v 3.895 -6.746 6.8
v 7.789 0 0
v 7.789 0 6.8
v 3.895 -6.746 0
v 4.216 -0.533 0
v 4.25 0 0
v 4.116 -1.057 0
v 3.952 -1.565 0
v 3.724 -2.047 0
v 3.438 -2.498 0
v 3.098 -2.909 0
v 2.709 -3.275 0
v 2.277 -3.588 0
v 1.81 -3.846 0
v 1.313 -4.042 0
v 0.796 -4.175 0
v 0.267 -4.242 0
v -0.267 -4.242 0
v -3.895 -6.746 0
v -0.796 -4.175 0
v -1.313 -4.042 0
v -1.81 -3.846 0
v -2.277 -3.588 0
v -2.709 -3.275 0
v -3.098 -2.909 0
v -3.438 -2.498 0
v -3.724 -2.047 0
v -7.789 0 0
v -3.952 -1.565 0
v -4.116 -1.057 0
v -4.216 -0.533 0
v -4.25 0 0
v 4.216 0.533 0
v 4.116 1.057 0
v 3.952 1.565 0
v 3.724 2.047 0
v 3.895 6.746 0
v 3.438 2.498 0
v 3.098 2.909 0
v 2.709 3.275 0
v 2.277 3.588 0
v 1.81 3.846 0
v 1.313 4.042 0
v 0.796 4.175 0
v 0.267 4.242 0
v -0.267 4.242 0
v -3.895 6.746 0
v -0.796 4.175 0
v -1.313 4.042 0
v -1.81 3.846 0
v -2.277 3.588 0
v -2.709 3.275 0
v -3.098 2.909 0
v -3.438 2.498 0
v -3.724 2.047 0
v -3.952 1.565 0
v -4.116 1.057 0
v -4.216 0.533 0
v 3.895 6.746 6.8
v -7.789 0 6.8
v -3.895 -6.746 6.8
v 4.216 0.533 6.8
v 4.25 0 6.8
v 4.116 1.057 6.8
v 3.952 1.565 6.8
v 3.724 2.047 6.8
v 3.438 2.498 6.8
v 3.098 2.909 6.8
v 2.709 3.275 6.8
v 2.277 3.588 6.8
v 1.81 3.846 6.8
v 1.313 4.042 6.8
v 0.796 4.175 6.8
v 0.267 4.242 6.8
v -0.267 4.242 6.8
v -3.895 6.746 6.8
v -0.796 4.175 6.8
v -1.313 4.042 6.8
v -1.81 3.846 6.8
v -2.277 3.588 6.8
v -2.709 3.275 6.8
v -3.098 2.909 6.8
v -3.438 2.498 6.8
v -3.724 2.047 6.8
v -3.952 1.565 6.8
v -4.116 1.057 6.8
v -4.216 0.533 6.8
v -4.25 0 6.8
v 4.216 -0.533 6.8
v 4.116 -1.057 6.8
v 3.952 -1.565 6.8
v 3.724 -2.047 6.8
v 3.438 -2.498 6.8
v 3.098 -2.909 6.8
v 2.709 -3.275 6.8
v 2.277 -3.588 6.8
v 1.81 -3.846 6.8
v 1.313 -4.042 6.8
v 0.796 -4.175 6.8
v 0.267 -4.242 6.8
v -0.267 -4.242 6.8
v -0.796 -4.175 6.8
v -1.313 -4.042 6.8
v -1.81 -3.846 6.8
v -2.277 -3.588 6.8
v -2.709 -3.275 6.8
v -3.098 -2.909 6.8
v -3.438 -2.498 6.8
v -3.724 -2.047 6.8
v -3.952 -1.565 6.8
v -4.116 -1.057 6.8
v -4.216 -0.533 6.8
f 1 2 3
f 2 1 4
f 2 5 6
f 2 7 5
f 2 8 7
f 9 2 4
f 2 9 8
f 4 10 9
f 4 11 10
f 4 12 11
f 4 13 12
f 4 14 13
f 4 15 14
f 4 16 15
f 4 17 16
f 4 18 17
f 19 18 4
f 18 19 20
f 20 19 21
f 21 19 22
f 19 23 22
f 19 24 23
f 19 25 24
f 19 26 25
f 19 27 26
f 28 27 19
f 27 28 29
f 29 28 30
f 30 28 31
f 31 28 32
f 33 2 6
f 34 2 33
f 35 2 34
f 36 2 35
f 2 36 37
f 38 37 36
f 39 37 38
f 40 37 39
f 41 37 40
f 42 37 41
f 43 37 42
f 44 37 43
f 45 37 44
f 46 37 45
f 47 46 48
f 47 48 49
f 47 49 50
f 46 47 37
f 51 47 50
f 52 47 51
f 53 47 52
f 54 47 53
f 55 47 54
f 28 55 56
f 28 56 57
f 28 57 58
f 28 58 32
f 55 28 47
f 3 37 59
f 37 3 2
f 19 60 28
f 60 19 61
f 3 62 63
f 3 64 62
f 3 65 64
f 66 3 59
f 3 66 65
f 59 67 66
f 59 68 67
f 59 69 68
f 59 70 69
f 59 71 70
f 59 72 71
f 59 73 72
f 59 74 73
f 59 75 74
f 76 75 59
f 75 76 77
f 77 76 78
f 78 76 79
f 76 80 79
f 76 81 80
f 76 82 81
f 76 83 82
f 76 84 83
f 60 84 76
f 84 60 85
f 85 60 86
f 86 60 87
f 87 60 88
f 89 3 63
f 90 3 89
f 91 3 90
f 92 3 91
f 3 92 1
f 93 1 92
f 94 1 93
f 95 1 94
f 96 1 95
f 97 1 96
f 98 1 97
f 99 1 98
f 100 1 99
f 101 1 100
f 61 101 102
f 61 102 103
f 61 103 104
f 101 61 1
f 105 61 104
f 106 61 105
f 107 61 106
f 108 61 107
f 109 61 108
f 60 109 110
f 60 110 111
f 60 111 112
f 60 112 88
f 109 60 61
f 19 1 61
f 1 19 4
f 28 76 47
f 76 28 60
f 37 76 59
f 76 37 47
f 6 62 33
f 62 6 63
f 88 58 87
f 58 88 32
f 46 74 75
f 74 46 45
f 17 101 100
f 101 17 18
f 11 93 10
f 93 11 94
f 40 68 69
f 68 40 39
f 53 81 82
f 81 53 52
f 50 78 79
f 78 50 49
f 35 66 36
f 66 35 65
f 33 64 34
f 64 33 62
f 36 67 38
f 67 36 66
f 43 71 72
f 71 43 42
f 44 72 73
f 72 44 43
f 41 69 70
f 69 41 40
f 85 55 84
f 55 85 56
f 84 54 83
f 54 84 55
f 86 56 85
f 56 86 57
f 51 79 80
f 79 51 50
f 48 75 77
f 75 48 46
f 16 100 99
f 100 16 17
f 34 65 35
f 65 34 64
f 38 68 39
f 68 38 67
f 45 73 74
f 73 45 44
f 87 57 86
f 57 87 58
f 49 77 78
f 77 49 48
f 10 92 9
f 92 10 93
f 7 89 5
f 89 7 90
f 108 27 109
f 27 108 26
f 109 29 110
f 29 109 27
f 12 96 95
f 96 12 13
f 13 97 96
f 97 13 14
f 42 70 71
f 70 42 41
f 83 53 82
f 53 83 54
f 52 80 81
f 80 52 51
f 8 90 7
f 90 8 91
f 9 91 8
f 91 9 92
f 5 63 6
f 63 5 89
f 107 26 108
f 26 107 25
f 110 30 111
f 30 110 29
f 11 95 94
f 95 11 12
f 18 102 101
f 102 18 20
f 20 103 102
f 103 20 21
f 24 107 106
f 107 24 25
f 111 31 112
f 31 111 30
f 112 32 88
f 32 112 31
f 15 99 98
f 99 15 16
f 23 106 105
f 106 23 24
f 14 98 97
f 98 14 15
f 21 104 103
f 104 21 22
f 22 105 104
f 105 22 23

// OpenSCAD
$fn = 50;


difference() {
	union() {
		translate(v = [0, 0, 0]) {
			rotate(a = [0, 0, 0]) {
				translate(v = [0, 0, 0]) {
					rotate(a = [0, 0, 0]) {
						linear_extrude(height = 6.8000000000) {
							polygon(points = [[7.7895000000, 0.0000000000], [3.8947500000, 6.7459048828], [-3.8947500000, 6.7459048828], [-7.7895000000, 0.0000000000], [-3.8947500000, -6.7459048828], [3.8947500000, -6.7459048828]]);
						}
					}
				}
			}
		}
		#translate(v = [-1.7500000000, -3.2500000000, 6.8000000000]) {
			rotate(a = [0, 0, 0]) {
				cube(size = [3.5000000000, 6.5000000000, 0.3000000000]);
			}
		}
		#translate(v = [-1.7500000000, -1.7500000000, 7.1000000000]) {
			rotate(a = [0, 0, 0]) {
				cube(size = [3.5000000000, 3.5000000000, 0.3000000000]);
			}
		}
		#translate(v = [-1.7500000000, -3.2500000000, -0.3000000000]) {
			rotate(a = [0, 0, 0]) {
				cube(size = [3.5000000000, 6.5000000000, 0.3000000000]);
			}
		}
		#translate(v = [-1.7500000000, -1.7500000000, -0.6000000000]) {
			rotate(a = [0, 0, 0]) {
				cube(size = [3.5000000000, 3.5000000000, 0.3000000000]);
			}
		}
	}
	union() {
		translate(v = [0, 0, -10]) {
			rotate(a = [0, 0, 0]) {
				cylinder(h = 100, r = 4.2500000000);
			}
		}
	}
}
